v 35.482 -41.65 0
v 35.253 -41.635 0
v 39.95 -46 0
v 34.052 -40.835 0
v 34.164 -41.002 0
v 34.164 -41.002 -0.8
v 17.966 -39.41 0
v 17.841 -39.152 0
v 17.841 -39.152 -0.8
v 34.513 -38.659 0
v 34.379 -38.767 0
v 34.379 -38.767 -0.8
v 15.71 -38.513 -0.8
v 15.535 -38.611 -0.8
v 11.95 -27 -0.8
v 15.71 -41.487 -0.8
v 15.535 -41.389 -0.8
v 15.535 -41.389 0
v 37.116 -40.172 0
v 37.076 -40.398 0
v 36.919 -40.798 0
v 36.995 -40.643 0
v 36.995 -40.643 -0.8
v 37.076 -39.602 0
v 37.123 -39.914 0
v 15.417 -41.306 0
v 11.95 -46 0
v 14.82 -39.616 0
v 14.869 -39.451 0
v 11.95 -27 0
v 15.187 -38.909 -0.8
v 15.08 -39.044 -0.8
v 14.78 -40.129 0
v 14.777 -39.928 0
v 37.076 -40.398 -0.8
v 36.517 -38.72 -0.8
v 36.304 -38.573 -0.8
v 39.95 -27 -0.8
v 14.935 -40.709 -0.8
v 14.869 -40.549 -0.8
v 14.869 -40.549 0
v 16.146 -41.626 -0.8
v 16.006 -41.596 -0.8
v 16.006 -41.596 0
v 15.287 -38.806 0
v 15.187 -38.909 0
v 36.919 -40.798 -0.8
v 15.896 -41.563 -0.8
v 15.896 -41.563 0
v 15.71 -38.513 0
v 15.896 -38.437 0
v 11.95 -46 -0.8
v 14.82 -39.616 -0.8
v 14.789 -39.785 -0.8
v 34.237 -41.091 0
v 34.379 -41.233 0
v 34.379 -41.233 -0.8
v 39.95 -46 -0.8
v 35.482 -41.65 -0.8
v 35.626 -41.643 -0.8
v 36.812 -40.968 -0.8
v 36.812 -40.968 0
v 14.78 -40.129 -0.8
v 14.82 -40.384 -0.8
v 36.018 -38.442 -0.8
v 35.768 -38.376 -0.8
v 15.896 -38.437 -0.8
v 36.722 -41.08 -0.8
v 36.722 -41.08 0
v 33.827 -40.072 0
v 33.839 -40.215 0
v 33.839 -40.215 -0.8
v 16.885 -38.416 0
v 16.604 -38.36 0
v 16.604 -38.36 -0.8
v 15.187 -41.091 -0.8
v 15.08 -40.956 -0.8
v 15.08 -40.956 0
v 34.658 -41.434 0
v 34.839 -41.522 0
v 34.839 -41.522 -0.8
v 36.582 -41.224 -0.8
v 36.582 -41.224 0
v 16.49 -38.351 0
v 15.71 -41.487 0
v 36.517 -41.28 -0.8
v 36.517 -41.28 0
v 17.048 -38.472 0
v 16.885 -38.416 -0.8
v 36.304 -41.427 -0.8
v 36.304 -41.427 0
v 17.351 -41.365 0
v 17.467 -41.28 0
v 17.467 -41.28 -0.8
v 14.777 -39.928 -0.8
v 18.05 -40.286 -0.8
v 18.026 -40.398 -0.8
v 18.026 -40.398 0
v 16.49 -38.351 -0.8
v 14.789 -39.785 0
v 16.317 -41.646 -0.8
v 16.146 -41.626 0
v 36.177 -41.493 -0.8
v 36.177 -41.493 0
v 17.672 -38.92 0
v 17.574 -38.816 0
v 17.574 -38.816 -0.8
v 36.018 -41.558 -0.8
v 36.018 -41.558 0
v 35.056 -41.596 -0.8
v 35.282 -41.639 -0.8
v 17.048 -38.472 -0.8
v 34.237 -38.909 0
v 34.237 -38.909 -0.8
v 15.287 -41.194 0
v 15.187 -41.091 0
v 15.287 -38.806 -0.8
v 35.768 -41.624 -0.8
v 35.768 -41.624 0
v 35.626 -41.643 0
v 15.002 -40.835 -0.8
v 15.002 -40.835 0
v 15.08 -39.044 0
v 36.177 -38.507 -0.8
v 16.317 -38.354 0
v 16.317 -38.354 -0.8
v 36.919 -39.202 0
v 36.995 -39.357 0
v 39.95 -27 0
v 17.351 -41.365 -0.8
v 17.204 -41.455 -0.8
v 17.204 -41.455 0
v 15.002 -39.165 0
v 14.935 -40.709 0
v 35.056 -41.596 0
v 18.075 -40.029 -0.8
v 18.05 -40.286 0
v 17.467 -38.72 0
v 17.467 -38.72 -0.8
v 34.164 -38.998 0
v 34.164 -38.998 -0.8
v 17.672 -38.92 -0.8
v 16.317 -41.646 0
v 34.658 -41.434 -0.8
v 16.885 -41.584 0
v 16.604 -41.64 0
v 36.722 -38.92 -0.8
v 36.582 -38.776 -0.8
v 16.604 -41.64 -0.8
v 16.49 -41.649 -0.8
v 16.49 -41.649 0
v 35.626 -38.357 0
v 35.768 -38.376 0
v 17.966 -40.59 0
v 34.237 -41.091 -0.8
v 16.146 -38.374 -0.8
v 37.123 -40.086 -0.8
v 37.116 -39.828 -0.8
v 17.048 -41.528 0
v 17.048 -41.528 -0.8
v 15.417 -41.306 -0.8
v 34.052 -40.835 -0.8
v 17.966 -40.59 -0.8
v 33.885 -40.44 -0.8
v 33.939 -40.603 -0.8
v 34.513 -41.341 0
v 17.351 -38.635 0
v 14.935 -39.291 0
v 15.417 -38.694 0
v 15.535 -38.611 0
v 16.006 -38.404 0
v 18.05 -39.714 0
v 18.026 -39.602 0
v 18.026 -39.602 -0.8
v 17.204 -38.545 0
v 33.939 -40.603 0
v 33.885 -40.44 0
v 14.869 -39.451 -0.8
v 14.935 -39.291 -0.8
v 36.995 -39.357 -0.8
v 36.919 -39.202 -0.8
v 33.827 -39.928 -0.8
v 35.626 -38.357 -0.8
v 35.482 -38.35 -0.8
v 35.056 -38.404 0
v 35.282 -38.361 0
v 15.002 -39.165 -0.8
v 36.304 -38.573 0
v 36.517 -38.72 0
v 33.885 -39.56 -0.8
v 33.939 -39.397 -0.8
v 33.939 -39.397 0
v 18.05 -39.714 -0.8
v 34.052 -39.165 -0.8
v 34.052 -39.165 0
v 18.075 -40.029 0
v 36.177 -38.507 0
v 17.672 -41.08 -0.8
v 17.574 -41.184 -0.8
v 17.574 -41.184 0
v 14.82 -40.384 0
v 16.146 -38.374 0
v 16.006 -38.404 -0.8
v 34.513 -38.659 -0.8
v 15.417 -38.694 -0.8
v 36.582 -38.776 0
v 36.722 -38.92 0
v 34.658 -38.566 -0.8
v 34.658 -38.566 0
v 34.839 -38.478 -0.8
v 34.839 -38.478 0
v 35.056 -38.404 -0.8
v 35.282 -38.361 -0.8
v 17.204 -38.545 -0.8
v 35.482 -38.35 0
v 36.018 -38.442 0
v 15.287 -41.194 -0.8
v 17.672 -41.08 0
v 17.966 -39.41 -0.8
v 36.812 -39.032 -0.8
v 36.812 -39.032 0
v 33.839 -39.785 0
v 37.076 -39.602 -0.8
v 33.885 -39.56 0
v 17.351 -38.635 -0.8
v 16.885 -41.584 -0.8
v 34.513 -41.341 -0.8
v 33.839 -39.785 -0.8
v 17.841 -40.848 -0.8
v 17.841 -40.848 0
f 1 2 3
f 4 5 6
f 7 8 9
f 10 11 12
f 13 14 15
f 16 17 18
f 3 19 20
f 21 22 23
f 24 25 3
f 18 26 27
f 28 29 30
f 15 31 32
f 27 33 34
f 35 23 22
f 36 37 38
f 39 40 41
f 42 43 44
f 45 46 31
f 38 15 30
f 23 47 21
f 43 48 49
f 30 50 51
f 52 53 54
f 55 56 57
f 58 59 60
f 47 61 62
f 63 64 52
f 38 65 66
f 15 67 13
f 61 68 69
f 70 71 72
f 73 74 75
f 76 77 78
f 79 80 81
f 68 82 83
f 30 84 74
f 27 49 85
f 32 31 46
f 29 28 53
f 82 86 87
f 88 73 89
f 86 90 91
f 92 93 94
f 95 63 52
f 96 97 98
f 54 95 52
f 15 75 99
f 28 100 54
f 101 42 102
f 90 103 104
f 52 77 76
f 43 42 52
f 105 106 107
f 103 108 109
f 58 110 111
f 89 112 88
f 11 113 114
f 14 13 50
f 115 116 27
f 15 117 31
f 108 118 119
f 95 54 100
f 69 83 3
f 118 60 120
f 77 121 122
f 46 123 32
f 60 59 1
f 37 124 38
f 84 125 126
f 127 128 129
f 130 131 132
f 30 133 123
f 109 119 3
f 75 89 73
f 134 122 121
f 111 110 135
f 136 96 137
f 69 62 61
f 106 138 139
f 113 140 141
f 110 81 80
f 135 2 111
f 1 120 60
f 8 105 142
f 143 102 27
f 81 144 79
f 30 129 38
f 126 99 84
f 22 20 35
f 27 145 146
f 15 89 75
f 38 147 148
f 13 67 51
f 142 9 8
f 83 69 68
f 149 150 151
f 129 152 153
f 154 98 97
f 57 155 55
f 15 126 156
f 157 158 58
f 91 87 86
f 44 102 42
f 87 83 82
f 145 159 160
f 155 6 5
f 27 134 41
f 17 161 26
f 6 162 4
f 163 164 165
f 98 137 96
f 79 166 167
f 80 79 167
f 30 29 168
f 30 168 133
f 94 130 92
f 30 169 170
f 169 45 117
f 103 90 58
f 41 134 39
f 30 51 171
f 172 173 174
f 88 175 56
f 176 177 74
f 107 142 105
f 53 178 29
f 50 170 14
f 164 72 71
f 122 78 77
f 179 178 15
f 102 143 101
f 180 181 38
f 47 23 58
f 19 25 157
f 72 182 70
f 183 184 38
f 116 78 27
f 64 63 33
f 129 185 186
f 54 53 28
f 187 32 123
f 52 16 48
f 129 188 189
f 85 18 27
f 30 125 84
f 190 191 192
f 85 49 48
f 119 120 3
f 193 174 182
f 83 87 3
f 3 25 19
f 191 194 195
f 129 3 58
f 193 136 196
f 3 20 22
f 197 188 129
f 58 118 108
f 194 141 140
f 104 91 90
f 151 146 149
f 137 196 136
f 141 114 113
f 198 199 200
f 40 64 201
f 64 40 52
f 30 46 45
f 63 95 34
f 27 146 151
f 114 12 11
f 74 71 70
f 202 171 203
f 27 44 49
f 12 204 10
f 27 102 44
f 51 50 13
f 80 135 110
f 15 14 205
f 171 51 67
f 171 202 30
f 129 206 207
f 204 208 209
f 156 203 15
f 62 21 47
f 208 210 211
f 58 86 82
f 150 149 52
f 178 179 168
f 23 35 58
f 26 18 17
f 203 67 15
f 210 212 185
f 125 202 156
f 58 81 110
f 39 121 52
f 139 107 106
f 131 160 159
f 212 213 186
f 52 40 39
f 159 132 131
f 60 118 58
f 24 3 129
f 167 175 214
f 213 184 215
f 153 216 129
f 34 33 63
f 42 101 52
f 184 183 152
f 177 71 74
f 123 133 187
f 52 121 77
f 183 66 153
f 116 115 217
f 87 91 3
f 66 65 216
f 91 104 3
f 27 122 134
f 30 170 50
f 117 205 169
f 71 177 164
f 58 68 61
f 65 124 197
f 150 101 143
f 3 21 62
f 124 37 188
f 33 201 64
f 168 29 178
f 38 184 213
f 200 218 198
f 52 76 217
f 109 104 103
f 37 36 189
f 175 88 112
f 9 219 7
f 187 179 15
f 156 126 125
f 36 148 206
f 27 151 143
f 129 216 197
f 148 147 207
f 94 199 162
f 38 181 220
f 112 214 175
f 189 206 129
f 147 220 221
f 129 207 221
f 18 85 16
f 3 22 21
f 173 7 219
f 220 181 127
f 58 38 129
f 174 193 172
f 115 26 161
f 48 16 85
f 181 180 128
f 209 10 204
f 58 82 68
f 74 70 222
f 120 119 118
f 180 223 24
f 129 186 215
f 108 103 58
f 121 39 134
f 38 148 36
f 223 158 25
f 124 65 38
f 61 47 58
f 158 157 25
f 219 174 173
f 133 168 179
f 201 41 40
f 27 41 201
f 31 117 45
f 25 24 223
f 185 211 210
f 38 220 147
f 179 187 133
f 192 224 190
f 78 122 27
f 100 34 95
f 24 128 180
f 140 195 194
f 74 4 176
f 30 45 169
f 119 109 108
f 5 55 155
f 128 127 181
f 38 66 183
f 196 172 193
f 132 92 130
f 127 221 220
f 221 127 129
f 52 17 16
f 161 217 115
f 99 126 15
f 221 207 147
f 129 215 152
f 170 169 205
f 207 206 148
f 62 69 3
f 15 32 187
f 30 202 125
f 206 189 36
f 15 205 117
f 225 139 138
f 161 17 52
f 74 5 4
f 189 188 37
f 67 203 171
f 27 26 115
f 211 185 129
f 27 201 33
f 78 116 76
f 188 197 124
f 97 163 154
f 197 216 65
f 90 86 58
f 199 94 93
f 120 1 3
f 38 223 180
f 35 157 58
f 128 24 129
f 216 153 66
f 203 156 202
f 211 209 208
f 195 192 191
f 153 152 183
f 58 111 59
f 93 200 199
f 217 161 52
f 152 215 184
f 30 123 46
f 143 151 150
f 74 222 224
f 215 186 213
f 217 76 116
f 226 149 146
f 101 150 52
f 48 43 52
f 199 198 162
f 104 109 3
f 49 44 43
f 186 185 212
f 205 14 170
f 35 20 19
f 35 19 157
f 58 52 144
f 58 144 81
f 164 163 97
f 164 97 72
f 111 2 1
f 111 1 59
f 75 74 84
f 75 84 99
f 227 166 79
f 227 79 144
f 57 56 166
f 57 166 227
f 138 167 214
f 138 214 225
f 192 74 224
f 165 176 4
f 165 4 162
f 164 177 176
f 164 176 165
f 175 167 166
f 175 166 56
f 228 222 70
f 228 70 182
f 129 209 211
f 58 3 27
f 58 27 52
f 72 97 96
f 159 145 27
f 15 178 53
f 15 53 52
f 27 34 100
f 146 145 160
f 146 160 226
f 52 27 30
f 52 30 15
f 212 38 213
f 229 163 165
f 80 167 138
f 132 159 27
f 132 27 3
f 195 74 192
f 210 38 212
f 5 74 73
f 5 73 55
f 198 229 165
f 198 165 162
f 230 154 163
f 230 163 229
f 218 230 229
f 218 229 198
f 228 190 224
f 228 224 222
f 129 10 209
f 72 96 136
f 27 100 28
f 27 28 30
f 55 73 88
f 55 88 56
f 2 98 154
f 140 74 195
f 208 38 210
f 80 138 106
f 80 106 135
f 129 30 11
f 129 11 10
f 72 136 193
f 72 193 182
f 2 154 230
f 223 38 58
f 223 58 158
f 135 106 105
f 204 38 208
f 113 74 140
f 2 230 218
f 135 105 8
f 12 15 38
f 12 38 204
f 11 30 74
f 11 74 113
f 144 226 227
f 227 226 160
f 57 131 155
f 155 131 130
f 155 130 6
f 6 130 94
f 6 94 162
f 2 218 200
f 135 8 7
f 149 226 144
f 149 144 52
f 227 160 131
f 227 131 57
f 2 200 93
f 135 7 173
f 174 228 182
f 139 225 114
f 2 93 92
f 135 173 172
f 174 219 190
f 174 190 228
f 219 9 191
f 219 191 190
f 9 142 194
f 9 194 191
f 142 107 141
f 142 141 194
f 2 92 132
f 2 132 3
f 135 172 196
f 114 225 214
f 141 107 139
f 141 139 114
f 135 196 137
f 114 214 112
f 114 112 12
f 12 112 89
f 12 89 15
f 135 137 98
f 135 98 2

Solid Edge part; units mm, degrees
sketch "Sketch1" plane through (0, 0, 0) normal (0, 0, 1) x (1, 0, 0)
  circle A0 centre (35.475, -40) radius 1.65
  circle A1 centre (16.425, -40) radius 1.65
  line L0 (11.95, -46) -> (39.95, -46)
  line L1 (39.95, -27) -> (39.95, -46)
  line L2 (11.95, -27) -> (39.95, -27)
  line L3 (11.95, -46) -> (11.95, -27)
  dimension "D1" = 19.05
extrude "Protrusion1" add sketch "Sketch1" against normal blind 0.8
properties material "ABS Plastic, high impact"
